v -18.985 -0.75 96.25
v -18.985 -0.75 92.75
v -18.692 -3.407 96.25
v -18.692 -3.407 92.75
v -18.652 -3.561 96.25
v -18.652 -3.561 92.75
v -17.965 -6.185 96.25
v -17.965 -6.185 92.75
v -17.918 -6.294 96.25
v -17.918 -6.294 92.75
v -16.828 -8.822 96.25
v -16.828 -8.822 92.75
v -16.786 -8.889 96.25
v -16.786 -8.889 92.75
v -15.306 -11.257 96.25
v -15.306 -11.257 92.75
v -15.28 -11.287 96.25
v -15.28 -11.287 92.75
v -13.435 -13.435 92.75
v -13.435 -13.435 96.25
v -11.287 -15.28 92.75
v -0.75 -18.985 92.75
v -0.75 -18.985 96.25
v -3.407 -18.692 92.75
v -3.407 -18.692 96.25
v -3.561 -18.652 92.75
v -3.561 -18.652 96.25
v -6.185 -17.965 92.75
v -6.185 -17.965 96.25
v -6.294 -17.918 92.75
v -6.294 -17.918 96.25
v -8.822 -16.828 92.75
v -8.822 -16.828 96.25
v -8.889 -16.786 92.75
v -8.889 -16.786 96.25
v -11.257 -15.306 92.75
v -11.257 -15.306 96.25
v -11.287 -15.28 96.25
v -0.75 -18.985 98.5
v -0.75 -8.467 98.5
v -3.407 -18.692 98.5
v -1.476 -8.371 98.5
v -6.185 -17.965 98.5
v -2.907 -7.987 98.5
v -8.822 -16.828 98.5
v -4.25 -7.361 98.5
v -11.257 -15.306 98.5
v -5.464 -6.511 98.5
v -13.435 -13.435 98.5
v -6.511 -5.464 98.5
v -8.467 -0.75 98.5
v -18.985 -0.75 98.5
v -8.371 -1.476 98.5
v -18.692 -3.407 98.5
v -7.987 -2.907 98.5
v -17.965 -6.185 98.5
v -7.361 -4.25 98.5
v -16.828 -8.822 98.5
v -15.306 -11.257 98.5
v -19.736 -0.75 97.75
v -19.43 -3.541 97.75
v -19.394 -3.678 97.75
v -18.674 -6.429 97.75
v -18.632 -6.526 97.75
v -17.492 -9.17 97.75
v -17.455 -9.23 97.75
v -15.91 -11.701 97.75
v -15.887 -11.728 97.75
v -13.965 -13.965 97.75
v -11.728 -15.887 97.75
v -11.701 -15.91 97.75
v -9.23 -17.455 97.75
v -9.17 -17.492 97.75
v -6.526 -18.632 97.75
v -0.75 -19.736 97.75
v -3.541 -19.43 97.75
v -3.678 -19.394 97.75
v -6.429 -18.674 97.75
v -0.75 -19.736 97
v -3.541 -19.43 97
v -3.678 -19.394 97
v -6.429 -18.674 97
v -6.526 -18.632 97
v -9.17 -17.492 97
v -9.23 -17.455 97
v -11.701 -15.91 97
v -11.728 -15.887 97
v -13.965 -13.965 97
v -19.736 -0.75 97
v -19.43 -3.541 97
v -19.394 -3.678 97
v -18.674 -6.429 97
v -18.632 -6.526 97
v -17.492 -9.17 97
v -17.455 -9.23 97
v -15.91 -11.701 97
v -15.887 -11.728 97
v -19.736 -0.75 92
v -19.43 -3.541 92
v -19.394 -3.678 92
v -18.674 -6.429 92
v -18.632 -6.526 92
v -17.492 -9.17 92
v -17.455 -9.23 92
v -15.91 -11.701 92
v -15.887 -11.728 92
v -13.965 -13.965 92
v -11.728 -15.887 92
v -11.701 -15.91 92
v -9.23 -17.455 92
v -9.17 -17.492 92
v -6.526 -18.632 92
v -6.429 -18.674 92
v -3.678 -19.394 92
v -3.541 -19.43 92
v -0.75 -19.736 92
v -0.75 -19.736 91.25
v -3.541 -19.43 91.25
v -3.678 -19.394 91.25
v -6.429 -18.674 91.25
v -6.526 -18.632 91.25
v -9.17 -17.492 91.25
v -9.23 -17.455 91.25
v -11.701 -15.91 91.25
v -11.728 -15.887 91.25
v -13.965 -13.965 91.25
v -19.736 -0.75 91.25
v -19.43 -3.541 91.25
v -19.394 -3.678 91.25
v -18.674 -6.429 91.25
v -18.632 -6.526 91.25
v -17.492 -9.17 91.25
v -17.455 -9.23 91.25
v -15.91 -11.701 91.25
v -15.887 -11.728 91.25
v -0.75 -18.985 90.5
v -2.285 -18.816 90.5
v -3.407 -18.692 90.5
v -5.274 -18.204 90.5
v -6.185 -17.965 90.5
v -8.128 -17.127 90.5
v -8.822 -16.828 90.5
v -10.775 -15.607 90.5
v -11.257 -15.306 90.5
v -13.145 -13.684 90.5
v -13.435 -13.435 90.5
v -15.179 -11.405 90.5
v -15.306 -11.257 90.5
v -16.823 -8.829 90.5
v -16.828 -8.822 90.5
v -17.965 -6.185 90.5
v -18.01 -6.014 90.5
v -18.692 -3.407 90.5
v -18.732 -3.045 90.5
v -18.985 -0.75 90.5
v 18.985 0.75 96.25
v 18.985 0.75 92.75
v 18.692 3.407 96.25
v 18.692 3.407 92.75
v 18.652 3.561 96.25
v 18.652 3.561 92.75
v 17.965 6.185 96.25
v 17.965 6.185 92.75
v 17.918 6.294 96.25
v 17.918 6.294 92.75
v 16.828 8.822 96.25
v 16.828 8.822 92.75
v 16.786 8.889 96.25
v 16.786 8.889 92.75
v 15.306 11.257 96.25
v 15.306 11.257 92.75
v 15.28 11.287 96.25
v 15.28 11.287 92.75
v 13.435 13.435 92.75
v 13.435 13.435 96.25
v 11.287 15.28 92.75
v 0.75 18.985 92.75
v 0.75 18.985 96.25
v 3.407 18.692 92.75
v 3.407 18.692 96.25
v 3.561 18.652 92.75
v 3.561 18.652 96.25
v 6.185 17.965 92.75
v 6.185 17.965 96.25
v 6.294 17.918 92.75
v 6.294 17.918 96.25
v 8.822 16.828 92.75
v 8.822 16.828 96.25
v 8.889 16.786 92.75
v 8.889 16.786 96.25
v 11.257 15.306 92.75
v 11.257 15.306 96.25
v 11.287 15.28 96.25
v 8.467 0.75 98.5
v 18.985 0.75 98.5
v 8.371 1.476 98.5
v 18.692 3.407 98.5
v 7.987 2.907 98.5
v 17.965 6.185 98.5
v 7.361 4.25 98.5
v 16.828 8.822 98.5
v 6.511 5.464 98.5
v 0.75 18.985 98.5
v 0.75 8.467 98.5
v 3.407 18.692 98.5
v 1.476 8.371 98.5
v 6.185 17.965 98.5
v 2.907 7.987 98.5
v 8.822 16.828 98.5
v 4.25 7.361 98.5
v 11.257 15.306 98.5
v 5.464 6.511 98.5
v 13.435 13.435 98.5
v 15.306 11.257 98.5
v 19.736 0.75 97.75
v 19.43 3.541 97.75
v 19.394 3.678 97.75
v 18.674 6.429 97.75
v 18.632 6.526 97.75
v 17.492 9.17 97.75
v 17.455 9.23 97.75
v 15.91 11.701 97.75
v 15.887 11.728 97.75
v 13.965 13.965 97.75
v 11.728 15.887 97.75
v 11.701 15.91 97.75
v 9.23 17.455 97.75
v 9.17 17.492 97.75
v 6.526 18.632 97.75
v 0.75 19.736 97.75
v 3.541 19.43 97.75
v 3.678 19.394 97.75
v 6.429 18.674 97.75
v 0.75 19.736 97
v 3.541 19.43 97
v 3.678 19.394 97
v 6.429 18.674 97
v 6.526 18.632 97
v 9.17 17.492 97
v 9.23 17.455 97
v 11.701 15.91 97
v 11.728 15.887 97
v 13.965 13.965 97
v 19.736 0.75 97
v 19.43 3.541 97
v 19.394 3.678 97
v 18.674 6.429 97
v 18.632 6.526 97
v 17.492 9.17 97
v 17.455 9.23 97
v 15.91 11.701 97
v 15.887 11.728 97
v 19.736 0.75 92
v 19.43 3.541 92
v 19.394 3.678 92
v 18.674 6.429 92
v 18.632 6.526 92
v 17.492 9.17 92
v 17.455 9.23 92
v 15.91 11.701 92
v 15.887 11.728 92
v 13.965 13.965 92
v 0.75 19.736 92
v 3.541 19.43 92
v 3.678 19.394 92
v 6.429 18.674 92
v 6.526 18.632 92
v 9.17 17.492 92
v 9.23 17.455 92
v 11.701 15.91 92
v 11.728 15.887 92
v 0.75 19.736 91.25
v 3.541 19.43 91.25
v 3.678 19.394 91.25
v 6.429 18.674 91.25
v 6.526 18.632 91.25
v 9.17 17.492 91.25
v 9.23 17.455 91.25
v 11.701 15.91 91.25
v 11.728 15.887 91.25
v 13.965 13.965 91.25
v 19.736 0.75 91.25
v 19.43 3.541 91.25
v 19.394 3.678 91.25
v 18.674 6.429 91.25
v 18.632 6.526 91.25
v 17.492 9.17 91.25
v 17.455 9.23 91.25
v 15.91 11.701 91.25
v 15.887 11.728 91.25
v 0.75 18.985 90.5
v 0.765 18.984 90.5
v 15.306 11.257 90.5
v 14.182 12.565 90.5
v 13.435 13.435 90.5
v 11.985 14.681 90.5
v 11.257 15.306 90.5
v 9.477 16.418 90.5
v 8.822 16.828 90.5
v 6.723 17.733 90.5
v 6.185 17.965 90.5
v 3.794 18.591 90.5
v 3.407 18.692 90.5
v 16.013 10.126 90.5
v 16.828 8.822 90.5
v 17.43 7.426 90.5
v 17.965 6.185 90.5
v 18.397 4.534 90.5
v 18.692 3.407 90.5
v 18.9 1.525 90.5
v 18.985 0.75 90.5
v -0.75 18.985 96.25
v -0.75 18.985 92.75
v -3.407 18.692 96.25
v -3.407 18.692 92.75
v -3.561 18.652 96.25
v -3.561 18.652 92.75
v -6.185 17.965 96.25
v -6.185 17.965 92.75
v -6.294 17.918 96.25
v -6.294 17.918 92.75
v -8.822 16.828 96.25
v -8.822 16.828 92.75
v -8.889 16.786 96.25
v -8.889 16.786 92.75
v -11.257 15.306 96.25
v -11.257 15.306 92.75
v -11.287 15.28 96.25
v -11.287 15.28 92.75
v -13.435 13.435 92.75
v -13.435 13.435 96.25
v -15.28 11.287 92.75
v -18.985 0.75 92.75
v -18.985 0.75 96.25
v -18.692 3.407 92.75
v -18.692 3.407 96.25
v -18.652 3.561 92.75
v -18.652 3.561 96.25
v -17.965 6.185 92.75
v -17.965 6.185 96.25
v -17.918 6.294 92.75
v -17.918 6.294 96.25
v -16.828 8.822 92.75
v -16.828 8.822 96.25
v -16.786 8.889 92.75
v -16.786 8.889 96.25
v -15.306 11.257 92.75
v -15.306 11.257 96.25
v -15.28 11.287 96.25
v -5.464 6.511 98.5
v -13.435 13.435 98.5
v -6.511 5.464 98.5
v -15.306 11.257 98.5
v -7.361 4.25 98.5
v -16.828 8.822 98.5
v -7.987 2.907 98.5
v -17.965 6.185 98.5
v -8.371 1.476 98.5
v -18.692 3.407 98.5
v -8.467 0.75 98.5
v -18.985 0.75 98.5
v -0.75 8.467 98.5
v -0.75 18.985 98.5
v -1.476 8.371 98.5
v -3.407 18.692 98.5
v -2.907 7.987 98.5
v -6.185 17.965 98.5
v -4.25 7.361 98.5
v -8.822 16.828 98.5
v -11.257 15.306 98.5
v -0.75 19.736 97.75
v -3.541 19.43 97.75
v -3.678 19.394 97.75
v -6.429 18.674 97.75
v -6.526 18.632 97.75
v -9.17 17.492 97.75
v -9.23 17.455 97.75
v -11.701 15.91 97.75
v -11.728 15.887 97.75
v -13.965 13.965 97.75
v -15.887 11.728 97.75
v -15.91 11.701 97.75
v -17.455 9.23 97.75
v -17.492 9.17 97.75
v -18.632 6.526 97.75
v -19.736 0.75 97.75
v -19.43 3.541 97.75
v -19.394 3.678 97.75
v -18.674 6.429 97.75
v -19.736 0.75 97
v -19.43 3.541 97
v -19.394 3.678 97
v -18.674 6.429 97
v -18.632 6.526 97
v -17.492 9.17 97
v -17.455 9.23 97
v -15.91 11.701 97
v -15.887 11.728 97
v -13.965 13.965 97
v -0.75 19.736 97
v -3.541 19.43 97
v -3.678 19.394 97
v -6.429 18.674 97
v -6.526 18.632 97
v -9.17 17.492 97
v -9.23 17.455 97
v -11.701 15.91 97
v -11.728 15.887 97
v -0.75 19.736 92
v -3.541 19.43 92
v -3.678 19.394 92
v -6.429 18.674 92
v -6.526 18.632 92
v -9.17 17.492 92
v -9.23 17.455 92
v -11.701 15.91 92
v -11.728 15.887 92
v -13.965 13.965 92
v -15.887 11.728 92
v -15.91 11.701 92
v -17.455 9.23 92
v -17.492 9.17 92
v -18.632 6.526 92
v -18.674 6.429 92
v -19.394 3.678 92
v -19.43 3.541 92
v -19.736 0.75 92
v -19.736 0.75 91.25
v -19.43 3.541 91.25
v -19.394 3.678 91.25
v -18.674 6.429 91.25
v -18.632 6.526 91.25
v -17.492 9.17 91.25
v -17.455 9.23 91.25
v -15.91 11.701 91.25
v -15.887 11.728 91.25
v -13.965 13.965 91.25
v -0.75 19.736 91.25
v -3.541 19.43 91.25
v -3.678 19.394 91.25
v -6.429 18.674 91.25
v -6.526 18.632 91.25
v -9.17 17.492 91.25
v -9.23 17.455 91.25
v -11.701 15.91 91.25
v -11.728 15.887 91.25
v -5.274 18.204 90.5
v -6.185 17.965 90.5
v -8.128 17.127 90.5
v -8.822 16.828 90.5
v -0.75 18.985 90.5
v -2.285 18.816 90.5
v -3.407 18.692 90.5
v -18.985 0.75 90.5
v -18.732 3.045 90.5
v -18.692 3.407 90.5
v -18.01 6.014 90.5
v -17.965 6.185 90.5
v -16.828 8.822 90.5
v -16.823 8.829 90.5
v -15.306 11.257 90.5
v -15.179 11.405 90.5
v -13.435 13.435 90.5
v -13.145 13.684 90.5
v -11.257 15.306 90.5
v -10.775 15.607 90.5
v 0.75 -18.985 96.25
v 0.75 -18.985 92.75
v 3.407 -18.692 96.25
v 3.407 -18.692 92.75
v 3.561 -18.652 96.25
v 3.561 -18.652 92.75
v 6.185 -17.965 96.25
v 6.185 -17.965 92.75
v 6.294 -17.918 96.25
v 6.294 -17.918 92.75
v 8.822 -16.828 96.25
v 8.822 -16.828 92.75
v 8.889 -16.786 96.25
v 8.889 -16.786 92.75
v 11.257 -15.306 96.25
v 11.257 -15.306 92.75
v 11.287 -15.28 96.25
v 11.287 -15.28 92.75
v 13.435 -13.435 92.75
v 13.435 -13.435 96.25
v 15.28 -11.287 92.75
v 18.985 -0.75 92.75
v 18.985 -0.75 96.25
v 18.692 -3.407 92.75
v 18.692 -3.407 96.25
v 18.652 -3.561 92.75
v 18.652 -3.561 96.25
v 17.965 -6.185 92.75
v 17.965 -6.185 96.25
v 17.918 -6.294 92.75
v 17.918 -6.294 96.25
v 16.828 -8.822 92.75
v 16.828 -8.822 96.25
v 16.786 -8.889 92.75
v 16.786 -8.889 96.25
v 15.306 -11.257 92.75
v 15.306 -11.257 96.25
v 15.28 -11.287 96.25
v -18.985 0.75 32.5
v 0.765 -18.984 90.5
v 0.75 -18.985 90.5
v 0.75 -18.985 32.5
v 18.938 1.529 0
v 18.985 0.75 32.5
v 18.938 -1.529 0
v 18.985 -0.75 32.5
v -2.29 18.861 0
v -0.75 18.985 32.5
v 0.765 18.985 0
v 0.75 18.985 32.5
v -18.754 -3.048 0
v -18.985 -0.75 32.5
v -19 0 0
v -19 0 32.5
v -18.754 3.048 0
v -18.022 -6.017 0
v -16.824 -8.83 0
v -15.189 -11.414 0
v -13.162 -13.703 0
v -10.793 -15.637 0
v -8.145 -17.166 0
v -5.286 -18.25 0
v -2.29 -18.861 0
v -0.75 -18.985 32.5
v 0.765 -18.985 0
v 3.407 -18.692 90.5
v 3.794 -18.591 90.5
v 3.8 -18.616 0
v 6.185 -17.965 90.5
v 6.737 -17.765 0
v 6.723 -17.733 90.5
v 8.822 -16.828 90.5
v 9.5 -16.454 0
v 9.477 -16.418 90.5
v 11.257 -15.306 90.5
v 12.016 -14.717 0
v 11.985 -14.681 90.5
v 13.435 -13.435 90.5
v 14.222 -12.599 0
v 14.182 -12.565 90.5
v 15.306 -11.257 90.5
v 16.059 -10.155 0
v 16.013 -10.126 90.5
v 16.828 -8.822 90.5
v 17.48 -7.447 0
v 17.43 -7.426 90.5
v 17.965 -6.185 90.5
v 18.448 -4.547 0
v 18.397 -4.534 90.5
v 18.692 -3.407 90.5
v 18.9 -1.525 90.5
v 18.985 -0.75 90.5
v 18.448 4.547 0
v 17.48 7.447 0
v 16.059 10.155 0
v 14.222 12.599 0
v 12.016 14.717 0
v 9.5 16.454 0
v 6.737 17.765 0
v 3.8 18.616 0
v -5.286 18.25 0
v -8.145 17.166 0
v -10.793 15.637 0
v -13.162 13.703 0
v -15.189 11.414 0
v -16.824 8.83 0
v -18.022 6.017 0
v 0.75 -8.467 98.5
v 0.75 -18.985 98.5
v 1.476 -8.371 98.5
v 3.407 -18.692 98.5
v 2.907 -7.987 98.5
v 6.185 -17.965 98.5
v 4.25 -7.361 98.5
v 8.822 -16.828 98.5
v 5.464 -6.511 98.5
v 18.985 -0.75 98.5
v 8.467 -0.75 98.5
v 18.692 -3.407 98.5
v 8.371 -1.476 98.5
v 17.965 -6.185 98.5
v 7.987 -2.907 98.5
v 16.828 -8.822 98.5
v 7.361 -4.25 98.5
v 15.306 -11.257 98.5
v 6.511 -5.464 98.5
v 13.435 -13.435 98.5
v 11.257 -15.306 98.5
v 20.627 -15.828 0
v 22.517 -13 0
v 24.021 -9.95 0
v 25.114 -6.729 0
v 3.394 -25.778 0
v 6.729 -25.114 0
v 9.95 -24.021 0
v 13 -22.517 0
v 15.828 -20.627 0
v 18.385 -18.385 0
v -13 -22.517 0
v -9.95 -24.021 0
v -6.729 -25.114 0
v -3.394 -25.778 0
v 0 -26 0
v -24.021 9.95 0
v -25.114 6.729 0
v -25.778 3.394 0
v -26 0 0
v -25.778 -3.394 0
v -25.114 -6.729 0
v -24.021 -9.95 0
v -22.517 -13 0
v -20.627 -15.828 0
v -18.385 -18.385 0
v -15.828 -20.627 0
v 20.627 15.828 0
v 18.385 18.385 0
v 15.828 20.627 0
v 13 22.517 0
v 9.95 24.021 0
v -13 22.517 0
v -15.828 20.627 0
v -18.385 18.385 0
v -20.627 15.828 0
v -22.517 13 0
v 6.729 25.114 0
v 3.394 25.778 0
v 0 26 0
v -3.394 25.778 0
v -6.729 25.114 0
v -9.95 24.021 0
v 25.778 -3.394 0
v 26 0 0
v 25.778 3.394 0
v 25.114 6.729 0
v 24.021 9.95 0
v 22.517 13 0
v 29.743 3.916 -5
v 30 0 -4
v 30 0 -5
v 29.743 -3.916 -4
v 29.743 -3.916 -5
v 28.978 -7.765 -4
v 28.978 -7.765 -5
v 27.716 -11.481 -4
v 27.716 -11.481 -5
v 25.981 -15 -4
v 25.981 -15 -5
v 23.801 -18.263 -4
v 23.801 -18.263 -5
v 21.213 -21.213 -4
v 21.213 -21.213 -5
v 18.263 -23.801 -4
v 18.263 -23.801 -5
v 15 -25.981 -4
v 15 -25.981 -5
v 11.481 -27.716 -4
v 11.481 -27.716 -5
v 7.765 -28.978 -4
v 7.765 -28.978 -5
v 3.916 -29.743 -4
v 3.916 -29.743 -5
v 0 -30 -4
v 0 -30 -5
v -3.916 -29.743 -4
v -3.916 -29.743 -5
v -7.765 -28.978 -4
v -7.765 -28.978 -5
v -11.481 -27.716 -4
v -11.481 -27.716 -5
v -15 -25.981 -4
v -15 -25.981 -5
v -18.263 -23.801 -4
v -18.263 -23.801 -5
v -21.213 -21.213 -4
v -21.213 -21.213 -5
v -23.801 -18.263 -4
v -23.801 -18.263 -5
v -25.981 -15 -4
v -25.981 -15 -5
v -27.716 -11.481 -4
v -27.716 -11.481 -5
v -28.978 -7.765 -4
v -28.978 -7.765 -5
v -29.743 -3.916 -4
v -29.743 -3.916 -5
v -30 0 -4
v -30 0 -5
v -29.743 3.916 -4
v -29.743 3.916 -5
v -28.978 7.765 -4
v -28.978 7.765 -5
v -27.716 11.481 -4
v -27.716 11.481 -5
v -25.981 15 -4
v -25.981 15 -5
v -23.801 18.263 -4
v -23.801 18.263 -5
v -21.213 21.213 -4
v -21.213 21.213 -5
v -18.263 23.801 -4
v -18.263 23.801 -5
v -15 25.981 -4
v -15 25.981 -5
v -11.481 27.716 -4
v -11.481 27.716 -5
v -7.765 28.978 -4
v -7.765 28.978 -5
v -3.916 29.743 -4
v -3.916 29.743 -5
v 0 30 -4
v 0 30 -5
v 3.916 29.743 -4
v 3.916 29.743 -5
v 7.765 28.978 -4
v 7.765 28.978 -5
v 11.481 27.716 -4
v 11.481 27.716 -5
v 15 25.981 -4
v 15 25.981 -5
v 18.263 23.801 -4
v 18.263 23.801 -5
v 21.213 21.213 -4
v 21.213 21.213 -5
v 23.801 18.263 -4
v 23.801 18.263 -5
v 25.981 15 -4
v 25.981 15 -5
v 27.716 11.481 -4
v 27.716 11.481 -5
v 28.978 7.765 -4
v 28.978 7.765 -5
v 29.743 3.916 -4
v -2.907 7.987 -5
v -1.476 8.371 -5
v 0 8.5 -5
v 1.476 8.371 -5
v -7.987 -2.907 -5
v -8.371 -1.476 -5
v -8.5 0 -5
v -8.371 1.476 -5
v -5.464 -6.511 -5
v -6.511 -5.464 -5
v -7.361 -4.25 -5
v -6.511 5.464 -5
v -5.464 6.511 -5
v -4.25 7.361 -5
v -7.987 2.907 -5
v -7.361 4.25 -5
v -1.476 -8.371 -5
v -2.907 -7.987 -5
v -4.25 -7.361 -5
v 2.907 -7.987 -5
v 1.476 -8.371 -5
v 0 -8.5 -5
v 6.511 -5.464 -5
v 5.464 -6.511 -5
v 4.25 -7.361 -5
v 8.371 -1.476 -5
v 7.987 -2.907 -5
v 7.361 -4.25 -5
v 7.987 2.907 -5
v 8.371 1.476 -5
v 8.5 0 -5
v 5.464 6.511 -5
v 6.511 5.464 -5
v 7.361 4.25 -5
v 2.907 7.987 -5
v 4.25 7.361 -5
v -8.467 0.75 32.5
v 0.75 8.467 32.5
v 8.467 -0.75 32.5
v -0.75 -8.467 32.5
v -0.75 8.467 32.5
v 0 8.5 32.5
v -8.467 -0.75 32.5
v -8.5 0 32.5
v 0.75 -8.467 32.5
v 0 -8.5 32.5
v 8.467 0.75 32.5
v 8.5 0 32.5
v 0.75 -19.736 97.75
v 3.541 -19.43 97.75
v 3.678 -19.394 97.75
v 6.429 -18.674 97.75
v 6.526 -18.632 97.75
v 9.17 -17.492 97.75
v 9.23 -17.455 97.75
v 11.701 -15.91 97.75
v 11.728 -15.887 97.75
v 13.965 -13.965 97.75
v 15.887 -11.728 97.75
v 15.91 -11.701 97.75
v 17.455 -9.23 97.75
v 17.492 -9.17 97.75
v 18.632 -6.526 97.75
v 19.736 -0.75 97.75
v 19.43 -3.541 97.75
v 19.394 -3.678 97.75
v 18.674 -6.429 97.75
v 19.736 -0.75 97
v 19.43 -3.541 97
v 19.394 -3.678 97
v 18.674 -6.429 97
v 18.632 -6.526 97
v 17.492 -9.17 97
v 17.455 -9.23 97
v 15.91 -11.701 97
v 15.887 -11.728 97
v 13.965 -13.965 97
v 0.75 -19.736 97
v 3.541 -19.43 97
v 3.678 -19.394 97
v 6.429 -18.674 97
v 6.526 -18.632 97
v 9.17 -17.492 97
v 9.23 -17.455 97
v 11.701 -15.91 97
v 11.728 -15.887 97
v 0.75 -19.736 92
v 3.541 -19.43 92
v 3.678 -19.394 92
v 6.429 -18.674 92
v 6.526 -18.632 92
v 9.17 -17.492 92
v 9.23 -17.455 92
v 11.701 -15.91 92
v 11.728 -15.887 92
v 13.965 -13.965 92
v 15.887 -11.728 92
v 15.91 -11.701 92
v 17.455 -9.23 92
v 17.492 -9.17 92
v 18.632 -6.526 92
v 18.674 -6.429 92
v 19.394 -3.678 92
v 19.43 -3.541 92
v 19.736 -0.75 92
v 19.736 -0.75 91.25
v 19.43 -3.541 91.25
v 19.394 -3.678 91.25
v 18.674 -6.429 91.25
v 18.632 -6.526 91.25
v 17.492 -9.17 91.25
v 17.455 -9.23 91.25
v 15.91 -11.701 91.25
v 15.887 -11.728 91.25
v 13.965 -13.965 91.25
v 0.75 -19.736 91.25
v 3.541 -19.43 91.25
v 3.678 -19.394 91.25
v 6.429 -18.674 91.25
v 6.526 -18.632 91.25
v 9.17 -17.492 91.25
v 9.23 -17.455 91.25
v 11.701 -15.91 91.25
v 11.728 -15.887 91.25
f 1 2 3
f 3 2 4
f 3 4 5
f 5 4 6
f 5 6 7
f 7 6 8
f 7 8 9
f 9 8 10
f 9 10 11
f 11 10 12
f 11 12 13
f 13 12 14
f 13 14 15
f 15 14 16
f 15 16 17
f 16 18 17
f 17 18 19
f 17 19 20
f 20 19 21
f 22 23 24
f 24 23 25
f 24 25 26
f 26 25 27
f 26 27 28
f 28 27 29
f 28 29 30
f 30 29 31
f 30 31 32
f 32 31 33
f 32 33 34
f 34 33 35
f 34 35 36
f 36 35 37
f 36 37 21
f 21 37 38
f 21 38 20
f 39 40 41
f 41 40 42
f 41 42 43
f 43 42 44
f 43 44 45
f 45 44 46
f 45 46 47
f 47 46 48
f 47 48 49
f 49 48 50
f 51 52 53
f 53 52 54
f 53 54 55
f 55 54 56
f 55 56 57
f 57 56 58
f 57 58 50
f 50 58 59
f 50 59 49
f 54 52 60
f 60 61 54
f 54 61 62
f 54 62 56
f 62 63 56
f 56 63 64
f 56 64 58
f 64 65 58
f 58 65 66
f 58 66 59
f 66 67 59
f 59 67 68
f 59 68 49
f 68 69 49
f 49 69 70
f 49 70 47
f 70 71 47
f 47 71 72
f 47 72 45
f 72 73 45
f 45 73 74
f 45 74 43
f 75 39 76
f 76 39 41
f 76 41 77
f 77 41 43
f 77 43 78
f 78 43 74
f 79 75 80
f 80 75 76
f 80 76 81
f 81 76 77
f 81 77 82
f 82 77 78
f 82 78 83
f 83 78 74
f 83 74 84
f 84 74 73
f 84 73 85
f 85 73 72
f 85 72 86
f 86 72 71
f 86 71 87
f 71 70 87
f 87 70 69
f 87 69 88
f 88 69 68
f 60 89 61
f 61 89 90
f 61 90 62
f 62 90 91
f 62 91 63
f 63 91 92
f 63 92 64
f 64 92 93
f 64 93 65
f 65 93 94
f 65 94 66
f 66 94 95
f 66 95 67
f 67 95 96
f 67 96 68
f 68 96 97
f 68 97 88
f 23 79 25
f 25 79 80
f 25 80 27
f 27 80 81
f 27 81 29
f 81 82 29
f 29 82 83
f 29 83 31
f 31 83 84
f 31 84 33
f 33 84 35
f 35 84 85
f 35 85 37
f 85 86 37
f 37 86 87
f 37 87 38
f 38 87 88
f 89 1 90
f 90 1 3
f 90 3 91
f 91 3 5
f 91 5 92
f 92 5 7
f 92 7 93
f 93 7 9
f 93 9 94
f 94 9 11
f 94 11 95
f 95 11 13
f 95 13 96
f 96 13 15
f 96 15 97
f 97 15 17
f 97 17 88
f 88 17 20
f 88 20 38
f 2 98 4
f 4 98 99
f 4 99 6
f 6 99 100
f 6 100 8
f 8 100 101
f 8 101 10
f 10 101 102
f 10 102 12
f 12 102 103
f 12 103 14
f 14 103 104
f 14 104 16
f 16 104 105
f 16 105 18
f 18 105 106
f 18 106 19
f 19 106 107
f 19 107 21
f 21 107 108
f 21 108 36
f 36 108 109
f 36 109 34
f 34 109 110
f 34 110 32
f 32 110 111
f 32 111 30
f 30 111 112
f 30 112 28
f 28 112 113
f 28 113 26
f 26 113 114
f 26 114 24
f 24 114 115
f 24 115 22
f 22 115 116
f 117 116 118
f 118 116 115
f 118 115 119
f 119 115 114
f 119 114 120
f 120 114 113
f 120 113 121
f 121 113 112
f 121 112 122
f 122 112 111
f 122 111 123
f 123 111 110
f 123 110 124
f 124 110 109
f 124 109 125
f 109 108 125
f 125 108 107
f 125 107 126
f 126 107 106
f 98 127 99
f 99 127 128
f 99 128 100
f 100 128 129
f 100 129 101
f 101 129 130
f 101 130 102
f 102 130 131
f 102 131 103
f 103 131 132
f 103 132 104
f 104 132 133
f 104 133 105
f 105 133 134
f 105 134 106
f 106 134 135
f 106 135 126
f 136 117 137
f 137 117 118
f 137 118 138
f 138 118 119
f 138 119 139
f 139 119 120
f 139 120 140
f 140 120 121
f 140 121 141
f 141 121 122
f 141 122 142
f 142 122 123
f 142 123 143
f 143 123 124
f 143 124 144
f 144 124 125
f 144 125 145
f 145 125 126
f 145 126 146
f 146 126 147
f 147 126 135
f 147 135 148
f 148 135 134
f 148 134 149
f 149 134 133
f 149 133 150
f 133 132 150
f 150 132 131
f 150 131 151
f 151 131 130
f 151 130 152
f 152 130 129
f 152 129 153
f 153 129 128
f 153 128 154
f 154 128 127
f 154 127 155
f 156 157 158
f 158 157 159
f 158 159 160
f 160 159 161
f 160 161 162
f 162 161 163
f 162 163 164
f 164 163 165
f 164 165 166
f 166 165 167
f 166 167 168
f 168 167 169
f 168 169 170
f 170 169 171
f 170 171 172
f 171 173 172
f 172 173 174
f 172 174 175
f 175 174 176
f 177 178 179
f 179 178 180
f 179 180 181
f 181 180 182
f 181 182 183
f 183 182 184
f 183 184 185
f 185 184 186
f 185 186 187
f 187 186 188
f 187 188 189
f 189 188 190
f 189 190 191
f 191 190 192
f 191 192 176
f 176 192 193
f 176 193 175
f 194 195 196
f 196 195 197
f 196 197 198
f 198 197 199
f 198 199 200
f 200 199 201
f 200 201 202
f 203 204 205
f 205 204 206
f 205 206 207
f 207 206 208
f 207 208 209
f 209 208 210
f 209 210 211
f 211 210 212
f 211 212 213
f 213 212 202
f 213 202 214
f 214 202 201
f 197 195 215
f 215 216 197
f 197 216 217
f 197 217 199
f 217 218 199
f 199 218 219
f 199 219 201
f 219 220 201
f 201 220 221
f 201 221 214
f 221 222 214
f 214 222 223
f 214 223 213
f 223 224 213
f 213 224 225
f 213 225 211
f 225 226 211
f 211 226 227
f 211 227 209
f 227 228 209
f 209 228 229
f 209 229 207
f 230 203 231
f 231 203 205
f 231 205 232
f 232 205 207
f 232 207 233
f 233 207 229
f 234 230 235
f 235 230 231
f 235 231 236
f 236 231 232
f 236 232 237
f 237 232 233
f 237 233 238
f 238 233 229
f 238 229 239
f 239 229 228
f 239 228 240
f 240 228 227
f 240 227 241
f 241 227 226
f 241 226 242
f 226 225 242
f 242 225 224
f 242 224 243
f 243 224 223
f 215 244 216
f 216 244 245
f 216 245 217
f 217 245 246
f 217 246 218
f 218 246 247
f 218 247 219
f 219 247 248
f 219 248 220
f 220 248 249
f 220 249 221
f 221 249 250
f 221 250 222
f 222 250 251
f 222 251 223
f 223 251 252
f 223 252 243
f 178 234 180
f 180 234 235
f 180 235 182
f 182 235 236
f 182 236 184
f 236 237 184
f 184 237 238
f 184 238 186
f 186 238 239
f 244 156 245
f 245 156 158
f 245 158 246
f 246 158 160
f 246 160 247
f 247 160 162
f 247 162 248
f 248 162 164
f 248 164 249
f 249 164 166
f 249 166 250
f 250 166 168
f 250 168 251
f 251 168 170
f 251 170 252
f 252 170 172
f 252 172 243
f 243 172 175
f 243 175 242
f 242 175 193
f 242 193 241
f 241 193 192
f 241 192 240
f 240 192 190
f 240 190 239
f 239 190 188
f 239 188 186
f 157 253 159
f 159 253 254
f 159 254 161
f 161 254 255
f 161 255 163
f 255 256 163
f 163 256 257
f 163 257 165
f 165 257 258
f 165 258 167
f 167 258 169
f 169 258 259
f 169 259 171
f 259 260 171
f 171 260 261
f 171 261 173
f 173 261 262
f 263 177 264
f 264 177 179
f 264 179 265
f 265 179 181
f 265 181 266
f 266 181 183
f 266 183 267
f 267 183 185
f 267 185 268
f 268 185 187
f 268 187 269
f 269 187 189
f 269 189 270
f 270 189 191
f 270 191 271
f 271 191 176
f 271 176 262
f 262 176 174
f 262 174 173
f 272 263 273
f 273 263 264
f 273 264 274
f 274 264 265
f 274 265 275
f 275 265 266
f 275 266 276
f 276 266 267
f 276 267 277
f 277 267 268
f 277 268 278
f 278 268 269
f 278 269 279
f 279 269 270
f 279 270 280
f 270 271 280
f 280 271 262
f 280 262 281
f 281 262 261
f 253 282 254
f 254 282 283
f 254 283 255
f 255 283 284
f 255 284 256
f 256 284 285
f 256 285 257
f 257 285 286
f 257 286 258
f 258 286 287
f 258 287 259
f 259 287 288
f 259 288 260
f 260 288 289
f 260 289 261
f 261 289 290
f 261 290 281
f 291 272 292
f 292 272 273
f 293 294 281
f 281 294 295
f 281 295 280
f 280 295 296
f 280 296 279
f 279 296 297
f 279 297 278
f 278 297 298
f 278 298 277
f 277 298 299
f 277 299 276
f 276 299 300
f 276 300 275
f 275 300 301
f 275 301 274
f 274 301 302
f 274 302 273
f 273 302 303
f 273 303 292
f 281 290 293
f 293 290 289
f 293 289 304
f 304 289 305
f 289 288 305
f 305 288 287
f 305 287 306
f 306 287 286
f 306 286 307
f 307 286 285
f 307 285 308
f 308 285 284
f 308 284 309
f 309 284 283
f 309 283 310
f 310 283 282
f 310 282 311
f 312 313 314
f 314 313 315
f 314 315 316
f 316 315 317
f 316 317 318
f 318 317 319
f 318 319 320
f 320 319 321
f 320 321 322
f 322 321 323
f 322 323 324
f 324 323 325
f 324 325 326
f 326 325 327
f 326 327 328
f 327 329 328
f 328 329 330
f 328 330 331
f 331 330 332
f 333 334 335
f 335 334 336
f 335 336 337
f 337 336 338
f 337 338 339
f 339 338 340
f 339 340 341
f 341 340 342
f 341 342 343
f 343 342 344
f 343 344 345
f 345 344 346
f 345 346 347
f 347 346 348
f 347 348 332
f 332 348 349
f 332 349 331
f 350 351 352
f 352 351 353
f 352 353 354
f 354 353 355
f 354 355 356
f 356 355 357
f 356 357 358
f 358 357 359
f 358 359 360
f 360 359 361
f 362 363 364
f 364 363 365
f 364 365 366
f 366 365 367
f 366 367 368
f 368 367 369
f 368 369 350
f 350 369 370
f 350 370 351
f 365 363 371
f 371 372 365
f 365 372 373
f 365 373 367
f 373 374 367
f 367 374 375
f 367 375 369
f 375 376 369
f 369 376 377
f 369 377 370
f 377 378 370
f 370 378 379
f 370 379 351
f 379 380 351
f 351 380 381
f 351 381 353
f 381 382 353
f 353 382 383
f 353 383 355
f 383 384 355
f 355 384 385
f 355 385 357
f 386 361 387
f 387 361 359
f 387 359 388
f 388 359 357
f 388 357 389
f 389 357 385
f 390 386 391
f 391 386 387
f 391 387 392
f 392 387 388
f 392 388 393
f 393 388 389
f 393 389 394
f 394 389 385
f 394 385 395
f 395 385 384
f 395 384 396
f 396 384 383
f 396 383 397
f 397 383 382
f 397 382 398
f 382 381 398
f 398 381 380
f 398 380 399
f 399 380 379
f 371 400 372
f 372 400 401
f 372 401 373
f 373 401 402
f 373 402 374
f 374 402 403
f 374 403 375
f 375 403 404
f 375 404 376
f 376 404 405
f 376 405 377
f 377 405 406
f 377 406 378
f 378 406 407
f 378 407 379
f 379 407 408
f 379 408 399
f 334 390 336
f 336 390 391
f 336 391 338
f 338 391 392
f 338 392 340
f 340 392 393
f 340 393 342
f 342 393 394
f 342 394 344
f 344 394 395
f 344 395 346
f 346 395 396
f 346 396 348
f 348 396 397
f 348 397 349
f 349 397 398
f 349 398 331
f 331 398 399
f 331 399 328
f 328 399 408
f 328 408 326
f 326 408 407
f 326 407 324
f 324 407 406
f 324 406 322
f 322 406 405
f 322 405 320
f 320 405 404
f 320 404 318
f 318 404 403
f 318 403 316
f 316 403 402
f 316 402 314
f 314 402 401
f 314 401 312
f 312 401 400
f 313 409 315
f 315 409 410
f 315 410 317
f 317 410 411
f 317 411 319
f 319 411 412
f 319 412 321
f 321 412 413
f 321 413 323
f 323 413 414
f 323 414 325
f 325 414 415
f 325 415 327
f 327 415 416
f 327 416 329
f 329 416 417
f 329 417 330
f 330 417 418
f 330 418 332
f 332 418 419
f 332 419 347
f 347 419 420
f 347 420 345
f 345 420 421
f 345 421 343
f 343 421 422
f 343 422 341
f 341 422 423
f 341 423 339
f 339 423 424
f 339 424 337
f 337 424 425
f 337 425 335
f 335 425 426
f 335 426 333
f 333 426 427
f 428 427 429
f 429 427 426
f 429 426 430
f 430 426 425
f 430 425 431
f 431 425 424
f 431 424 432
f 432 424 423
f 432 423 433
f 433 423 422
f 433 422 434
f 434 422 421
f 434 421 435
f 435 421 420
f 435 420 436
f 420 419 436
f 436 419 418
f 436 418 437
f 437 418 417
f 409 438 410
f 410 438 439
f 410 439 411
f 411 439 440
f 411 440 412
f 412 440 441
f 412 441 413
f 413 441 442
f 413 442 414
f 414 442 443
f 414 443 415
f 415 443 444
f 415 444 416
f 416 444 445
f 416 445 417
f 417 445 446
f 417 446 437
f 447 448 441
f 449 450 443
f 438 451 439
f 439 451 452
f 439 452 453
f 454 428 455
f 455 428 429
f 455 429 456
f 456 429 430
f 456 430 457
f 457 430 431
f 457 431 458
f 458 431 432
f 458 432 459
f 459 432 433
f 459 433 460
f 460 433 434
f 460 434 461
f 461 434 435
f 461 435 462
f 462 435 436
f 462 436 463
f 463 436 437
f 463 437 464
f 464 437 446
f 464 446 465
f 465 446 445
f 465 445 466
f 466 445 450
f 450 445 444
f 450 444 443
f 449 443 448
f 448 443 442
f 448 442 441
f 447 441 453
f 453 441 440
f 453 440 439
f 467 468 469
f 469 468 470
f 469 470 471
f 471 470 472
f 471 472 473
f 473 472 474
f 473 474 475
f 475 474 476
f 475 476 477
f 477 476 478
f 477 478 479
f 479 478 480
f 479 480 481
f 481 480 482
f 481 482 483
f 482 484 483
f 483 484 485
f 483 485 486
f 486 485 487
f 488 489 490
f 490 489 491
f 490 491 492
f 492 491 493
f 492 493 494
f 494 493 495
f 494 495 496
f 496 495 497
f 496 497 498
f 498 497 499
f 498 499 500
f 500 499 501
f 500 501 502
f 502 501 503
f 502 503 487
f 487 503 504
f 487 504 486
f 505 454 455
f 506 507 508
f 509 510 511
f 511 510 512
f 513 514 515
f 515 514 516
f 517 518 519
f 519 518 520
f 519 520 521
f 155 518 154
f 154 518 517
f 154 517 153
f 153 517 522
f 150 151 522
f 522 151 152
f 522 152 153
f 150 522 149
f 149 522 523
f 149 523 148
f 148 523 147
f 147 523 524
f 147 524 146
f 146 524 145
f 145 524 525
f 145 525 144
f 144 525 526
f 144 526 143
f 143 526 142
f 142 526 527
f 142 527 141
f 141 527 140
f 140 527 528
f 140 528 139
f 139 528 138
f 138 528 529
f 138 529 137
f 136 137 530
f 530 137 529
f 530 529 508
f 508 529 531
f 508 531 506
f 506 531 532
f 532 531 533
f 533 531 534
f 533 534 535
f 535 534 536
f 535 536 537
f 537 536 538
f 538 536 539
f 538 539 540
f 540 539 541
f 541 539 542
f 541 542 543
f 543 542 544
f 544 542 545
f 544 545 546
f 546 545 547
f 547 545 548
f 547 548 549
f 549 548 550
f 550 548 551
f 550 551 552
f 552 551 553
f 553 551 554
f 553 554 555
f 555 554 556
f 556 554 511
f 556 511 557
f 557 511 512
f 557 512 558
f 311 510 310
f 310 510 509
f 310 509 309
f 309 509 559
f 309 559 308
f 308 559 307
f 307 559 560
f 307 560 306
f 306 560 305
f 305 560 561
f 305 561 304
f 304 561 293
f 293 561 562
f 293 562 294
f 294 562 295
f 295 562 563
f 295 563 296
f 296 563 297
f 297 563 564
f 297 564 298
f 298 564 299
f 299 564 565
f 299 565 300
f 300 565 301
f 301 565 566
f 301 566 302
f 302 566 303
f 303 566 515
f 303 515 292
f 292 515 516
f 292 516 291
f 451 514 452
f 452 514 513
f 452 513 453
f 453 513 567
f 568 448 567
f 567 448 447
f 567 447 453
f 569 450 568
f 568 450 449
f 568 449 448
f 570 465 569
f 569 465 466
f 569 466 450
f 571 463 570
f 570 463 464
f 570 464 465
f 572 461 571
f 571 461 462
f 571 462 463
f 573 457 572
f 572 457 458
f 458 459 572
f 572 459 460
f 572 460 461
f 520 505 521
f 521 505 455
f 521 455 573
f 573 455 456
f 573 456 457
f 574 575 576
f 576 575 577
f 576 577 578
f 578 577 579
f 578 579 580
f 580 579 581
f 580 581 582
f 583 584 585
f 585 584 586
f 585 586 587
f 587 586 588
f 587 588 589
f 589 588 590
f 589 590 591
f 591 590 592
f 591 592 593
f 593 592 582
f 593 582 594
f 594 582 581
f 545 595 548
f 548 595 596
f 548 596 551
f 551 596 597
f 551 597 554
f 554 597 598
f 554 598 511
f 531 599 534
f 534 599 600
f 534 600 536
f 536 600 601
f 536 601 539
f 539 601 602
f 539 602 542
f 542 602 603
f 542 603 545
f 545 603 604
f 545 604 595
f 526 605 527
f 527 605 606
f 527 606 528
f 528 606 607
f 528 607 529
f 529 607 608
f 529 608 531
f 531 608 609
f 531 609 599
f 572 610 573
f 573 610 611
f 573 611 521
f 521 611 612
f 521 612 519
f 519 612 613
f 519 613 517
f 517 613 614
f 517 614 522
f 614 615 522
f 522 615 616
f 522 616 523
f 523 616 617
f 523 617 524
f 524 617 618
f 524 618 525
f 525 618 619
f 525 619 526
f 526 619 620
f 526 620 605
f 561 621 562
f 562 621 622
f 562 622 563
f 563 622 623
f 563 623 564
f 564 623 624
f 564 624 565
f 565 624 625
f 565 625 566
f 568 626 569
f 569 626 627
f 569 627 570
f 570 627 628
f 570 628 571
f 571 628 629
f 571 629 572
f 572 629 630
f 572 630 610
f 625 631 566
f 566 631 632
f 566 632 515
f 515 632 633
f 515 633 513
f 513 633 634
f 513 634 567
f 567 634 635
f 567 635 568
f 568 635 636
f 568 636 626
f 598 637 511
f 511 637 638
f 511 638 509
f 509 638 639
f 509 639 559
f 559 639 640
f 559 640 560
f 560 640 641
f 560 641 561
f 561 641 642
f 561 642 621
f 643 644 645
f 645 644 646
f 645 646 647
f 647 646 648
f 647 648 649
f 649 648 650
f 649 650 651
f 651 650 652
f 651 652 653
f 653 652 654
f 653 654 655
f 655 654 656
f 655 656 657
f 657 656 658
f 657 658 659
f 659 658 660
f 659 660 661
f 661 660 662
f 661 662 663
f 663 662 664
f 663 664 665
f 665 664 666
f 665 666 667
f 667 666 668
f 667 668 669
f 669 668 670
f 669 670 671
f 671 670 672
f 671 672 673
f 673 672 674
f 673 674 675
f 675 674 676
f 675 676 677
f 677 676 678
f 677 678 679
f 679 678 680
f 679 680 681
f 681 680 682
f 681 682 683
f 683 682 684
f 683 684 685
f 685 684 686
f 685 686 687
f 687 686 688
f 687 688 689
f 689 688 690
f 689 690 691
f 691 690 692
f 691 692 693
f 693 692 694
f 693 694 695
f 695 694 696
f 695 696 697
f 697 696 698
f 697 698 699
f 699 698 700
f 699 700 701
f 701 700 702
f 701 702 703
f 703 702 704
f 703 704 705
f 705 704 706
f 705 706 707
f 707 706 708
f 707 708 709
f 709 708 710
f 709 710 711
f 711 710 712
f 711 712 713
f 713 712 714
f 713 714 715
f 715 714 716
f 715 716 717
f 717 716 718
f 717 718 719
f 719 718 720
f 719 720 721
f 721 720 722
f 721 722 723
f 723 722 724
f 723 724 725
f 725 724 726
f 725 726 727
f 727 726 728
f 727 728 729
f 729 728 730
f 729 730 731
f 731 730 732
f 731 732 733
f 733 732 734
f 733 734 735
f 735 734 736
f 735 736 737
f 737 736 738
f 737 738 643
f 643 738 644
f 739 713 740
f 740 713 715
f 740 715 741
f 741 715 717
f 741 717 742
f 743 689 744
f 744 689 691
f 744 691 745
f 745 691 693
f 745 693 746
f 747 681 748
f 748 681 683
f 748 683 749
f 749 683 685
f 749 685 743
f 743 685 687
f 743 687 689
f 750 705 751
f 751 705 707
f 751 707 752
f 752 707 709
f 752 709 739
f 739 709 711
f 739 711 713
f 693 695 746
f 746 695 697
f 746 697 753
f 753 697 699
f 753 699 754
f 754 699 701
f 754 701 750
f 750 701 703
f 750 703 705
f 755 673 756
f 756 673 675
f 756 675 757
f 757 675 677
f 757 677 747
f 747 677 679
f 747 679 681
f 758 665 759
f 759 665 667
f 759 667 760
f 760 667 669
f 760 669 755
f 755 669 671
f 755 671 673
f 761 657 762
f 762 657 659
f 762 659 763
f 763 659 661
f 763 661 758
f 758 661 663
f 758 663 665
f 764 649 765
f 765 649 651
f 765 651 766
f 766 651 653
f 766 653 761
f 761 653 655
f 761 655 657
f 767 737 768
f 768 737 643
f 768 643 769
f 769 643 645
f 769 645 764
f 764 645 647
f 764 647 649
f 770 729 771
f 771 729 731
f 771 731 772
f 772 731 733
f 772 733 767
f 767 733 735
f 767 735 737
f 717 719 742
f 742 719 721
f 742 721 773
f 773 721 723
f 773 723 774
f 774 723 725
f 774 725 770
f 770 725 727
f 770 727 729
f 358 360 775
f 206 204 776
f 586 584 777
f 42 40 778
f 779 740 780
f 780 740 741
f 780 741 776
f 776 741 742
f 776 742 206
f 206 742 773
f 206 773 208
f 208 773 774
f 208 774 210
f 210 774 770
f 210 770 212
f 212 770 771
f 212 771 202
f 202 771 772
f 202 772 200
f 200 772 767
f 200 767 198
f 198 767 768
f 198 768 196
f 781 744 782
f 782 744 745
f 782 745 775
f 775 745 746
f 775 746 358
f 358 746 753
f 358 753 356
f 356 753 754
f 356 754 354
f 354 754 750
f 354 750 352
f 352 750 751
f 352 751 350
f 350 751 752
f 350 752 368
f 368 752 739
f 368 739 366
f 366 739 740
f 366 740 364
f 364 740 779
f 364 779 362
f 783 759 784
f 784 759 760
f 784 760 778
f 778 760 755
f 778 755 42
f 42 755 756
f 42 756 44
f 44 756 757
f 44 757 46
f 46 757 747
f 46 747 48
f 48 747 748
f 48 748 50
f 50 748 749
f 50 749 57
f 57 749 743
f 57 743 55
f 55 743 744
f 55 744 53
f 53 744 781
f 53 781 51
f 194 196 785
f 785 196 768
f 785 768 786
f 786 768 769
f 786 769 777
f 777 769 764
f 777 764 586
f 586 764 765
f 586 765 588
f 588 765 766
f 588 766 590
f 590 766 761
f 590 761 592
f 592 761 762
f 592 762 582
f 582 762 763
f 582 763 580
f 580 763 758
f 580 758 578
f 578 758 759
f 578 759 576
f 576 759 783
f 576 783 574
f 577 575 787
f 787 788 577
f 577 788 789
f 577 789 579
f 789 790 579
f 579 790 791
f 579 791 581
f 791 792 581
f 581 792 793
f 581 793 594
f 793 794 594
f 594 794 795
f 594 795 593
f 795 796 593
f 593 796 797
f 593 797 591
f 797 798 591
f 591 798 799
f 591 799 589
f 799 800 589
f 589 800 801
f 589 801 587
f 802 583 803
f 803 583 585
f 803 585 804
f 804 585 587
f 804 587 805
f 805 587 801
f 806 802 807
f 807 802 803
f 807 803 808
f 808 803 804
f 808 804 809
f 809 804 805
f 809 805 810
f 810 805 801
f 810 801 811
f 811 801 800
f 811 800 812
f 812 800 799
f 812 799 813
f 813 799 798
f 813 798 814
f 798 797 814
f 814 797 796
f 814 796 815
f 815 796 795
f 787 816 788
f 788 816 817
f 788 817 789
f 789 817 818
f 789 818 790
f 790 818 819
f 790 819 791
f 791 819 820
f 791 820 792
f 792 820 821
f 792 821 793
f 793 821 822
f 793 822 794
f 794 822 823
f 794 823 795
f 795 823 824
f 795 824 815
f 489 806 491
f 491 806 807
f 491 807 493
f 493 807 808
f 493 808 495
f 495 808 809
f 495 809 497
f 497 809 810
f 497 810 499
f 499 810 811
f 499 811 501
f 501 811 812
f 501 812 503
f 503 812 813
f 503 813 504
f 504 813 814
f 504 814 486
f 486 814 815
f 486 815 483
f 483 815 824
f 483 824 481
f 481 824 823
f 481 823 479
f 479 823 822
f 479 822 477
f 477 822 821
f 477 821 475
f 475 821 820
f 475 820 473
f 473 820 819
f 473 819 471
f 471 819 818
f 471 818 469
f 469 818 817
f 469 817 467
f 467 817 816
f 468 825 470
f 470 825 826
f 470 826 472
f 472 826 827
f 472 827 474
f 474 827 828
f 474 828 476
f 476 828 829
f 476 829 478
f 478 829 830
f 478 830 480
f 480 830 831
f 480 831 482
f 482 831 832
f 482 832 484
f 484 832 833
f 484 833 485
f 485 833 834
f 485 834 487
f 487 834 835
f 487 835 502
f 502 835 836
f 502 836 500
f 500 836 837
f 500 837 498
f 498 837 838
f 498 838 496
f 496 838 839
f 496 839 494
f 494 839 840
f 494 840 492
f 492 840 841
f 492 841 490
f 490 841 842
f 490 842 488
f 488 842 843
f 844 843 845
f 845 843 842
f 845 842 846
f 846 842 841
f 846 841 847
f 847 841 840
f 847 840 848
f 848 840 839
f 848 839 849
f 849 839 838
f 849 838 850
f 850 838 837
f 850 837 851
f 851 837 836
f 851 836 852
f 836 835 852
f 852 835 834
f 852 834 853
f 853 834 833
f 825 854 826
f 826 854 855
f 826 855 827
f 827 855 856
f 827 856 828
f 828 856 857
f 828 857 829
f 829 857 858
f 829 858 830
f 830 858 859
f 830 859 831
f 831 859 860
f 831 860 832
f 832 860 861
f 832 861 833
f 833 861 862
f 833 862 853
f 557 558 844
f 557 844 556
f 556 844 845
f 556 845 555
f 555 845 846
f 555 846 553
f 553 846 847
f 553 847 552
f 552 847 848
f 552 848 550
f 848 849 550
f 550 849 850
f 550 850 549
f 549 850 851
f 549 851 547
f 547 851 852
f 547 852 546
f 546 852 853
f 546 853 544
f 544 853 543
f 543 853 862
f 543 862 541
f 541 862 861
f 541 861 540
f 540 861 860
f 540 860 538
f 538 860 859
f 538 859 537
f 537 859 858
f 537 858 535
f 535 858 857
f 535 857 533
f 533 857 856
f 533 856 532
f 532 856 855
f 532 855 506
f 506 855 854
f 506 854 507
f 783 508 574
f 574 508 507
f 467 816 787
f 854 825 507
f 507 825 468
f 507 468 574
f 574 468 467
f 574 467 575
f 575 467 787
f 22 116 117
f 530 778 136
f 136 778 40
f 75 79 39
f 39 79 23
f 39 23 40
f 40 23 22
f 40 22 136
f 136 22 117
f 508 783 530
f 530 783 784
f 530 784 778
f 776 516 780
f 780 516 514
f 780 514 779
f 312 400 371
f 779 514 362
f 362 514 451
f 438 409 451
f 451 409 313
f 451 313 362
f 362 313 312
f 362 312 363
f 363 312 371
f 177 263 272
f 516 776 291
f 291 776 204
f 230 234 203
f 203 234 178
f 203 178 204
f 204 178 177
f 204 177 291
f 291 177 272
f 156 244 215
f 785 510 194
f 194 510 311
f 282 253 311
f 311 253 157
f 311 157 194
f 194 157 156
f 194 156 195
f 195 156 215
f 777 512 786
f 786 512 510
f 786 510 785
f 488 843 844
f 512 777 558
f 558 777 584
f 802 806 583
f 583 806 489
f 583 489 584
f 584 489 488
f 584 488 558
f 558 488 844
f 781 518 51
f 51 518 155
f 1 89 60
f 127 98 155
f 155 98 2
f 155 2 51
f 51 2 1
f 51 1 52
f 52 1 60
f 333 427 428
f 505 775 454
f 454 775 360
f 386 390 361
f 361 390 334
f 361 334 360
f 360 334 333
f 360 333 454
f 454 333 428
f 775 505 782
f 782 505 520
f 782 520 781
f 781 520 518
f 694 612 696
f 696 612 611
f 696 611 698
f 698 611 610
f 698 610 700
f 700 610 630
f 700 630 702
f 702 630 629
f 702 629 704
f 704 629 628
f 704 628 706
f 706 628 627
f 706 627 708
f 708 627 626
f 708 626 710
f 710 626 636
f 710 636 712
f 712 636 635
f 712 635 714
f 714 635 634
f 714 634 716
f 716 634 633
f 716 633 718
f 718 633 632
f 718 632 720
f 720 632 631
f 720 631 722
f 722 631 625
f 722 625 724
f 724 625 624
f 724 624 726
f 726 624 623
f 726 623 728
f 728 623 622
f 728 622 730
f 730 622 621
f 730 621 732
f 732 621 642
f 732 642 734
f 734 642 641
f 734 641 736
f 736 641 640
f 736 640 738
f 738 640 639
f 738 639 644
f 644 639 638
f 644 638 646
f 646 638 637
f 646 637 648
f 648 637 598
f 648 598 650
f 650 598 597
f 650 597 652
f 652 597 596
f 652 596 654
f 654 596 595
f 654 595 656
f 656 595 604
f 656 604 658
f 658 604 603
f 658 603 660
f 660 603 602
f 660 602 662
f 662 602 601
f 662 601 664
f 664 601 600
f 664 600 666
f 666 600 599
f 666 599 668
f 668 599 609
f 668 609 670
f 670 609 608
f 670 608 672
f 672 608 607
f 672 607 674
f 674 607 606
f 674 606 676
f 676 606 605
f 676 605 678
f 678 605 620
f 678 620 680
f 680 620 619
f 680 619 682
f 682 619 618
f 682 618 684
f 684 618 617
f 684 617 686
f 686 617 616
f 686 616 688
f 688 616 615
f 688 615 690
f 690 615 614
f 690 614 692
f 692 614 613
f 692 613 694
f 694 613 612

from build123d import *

# Parameters (mm, degrees)
AXLE_BASE_SKETCH_R        = 19
AXLE_DEPTH                = 98.5
GUARD_BASE_R              = 30
GUARD_DEPTH               = 5
INNER_AXLE_HOLE_BASE_R    = 8.5
INNER_AXLE_HOLE_DEPTH     = 104.5
BEND_ROOM_BASE_W          = 1.5
BEND_ROOM_BASE_H          = 50
BEND_ROOM_1_DEPTH         = 66
BEND_ROOM_2_COUNT         = 2
BEND_ROOM_2_ANGLE         = 90
EASY_REMOVAL_CHAMFER_SIZE = 4


with BuildPart() as part:
    # Axle base sketch → Axle (new body)
    with BuildSketch(Plane.XY):
        Circle(AXLE_BASE_SKETCH_R)
    extrude(amount=AXLE_DEPTH)

    # Guard base → Guard (add)
    with BuildSketch(Plane(origin=(0, 0, 0), x_dir=(-1, 0, 0), z_dir=(0, 0, -1))):
        Circle(GUARD_BASE_R)
    extrude(amount=GUARD_DEPTH)

    # Inner axle hole base → Inner axle hole (cut, through all)
    with BuildSketch(Plane.XY.offset(98.5)):
        Circle(INNER_AXLE_HOLE_BASE_R)
    extrude(amount=-INNER_AXLE_HOLE_DEPTH, mode=Mode.SUBTRACT)

    # Mate ring base → Mate rings (revolve)
    with BuildSketch(Plane(origin=(0, 0, 0), x_dir=(1, 0, 0), z_dir=(0, 1, 0))):
        Polygon((19, -98.5), (19.75, -97.75), (19.75, -97), (19, -96.25), align=None)
        Polygon((19, -92.75), (19.75, -92), (19.75, -91.25), (19, -90.5), align=None)
    revolve(axis=Axis((0, 0, 0), (0, 0, -1)))

    # Bend room base → Bend room 1 (cut)
    with BuildSketch(Plane.XY.offset(98.5)):
        Rectangle(BEND_ROOM_BASE_W, BEND_ROOM_BASE_H)
    bend_room_1 = extrude(amount=-BEND_ROOM_1_DEPTH, mode=Mode.SUBTRACT)

    # Bend room 2: Bend room 1 ×2 about axis
    bend_room_2_axis = Axis((0, 0, 0), (0, 0, -1))
    for i in range(1, BEND_ROOM_2_COUNT):
        add(bend_room_1.rotate(bend_room_2_axis, i * BEND_ROOM_2_ANGLE / (BEND_ROOM_2_COUNT - 1)), mode=Mode.SUBTRACT)

    # Easy removal chamfer
    easy_removal_chamfer_edges = [part.edges().sort_by_distance(p)[0] for p in [
        (30, 0, 0),
    ]]
    chamfer(easy_removal_chamfer_edges, length=EASY_REMOVAL_CHAMFER_SIZE)


solid = part.part
